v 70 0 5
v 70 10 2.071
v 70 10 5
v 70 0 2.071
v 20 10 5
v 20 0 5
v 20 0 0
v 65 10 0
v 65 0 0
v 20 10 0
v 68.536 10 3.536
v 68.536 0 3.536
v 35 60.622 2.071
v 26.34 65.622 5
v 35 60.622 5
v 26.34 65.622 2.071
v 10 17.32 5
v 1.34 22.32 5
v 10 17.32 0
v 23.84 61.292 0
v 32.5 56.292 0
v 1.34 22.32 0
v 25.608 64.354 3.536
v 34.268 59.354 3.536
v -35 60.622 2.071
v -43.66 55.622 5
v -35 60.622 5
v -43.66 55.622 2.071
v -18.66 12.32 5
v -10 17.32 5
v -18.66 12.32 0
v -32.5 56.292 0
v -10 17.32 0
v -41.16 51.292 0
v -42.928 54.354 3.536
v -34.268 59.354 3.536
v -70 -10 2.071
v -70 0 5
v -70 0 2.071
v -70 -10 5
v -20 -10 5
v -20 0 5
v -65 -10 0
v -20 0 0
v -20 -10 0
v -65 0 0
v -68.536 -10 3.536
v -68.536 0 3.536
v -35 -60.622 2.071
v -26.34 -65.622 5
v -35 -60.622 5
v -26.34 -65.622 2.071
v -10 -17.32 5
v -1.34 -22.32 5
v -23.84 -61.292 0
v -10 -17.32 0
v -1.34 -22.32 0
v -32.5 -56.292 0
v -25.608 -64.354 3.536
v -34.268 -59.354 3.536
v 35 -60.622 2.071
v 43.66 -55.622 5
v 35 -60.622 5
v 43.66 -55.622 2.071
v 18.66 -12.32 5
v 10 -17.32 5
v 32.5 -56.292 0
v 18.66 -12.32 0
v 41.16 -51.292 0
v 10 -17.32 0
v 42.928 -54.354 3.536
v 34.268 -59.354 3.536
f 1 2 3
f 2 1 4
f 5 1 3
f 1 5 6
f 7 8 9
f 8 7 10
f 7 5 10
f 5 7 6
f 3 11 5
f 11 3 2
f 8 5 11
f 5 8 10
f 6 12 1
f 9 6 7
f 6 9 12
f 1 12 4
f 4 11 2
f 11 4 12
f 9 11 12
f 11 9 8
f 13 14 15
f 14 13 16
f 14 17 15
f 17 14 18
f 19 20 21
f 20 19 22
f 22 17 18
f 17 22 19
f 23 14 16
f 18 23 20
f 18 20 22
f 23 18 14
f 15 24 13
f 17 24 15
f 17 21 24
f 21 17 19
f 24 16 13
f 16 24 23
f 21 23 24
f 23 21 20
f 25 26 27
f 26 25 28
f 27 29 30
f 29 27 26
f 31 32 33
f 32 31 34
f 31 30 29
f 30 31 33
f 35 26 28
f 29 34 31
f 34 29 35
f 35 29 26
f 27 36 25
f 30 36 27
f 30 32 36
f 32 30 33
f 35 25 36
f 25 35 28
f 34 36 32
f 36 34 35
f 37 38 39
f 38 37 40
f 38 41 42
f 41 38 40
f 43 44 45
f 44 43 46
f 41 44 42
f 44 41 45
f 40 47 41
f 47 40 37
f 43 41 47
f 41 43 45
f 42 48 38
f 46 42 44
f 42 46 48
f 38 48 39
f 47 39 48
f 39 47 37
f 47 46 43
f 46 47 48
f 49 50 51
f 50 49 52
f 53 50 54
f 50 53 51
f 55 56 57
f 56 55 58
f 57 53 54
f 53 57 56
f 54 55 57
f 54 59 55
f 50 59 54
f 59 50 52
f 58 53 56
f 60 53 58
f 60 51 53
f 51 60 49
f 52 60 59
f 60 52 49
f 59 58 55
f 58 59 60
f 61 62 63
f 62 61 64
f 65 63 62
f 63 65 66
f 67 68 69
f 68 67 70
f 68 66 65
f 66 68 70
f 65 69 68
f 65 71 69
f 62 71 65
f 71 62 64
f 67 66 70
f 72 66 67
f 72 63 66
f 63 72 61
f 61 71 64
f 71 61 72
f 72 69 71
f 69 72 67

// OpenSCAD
// Parameters for the rectangular bar
bar_length = 50; // Length of the bar
bar_width = 10;  // Width of the bar
bar_thickness = 5; // Thickness of the bar
bevel_length = 5; // Length of the beveled end

// Function to create a single rectangular bar with a beveled end
module rectangular_bar() {
    difference() {
        // Main rectangular prism
        cube([bar_length, bar_width, bar_thickness]);
        // Beveled end
        translate([bar_length - bevel_length, 0, 0])
            rotate([0, 45, 0])
            cube([bevel_length * sqrt(2), bar_width, bar_thickness]);
    }
}

// Positioning the six rectangular bars in the same vertical layer
module layer_1() {
    for (i = [0:5]) {
        rotate([0, 0, i * 60]) // Rotate each bar evenly around the center
            translate([20, 0, 0]) // Offset from the center
            rectangular_bar();
    }
}

// Generate the model
layer_1();
